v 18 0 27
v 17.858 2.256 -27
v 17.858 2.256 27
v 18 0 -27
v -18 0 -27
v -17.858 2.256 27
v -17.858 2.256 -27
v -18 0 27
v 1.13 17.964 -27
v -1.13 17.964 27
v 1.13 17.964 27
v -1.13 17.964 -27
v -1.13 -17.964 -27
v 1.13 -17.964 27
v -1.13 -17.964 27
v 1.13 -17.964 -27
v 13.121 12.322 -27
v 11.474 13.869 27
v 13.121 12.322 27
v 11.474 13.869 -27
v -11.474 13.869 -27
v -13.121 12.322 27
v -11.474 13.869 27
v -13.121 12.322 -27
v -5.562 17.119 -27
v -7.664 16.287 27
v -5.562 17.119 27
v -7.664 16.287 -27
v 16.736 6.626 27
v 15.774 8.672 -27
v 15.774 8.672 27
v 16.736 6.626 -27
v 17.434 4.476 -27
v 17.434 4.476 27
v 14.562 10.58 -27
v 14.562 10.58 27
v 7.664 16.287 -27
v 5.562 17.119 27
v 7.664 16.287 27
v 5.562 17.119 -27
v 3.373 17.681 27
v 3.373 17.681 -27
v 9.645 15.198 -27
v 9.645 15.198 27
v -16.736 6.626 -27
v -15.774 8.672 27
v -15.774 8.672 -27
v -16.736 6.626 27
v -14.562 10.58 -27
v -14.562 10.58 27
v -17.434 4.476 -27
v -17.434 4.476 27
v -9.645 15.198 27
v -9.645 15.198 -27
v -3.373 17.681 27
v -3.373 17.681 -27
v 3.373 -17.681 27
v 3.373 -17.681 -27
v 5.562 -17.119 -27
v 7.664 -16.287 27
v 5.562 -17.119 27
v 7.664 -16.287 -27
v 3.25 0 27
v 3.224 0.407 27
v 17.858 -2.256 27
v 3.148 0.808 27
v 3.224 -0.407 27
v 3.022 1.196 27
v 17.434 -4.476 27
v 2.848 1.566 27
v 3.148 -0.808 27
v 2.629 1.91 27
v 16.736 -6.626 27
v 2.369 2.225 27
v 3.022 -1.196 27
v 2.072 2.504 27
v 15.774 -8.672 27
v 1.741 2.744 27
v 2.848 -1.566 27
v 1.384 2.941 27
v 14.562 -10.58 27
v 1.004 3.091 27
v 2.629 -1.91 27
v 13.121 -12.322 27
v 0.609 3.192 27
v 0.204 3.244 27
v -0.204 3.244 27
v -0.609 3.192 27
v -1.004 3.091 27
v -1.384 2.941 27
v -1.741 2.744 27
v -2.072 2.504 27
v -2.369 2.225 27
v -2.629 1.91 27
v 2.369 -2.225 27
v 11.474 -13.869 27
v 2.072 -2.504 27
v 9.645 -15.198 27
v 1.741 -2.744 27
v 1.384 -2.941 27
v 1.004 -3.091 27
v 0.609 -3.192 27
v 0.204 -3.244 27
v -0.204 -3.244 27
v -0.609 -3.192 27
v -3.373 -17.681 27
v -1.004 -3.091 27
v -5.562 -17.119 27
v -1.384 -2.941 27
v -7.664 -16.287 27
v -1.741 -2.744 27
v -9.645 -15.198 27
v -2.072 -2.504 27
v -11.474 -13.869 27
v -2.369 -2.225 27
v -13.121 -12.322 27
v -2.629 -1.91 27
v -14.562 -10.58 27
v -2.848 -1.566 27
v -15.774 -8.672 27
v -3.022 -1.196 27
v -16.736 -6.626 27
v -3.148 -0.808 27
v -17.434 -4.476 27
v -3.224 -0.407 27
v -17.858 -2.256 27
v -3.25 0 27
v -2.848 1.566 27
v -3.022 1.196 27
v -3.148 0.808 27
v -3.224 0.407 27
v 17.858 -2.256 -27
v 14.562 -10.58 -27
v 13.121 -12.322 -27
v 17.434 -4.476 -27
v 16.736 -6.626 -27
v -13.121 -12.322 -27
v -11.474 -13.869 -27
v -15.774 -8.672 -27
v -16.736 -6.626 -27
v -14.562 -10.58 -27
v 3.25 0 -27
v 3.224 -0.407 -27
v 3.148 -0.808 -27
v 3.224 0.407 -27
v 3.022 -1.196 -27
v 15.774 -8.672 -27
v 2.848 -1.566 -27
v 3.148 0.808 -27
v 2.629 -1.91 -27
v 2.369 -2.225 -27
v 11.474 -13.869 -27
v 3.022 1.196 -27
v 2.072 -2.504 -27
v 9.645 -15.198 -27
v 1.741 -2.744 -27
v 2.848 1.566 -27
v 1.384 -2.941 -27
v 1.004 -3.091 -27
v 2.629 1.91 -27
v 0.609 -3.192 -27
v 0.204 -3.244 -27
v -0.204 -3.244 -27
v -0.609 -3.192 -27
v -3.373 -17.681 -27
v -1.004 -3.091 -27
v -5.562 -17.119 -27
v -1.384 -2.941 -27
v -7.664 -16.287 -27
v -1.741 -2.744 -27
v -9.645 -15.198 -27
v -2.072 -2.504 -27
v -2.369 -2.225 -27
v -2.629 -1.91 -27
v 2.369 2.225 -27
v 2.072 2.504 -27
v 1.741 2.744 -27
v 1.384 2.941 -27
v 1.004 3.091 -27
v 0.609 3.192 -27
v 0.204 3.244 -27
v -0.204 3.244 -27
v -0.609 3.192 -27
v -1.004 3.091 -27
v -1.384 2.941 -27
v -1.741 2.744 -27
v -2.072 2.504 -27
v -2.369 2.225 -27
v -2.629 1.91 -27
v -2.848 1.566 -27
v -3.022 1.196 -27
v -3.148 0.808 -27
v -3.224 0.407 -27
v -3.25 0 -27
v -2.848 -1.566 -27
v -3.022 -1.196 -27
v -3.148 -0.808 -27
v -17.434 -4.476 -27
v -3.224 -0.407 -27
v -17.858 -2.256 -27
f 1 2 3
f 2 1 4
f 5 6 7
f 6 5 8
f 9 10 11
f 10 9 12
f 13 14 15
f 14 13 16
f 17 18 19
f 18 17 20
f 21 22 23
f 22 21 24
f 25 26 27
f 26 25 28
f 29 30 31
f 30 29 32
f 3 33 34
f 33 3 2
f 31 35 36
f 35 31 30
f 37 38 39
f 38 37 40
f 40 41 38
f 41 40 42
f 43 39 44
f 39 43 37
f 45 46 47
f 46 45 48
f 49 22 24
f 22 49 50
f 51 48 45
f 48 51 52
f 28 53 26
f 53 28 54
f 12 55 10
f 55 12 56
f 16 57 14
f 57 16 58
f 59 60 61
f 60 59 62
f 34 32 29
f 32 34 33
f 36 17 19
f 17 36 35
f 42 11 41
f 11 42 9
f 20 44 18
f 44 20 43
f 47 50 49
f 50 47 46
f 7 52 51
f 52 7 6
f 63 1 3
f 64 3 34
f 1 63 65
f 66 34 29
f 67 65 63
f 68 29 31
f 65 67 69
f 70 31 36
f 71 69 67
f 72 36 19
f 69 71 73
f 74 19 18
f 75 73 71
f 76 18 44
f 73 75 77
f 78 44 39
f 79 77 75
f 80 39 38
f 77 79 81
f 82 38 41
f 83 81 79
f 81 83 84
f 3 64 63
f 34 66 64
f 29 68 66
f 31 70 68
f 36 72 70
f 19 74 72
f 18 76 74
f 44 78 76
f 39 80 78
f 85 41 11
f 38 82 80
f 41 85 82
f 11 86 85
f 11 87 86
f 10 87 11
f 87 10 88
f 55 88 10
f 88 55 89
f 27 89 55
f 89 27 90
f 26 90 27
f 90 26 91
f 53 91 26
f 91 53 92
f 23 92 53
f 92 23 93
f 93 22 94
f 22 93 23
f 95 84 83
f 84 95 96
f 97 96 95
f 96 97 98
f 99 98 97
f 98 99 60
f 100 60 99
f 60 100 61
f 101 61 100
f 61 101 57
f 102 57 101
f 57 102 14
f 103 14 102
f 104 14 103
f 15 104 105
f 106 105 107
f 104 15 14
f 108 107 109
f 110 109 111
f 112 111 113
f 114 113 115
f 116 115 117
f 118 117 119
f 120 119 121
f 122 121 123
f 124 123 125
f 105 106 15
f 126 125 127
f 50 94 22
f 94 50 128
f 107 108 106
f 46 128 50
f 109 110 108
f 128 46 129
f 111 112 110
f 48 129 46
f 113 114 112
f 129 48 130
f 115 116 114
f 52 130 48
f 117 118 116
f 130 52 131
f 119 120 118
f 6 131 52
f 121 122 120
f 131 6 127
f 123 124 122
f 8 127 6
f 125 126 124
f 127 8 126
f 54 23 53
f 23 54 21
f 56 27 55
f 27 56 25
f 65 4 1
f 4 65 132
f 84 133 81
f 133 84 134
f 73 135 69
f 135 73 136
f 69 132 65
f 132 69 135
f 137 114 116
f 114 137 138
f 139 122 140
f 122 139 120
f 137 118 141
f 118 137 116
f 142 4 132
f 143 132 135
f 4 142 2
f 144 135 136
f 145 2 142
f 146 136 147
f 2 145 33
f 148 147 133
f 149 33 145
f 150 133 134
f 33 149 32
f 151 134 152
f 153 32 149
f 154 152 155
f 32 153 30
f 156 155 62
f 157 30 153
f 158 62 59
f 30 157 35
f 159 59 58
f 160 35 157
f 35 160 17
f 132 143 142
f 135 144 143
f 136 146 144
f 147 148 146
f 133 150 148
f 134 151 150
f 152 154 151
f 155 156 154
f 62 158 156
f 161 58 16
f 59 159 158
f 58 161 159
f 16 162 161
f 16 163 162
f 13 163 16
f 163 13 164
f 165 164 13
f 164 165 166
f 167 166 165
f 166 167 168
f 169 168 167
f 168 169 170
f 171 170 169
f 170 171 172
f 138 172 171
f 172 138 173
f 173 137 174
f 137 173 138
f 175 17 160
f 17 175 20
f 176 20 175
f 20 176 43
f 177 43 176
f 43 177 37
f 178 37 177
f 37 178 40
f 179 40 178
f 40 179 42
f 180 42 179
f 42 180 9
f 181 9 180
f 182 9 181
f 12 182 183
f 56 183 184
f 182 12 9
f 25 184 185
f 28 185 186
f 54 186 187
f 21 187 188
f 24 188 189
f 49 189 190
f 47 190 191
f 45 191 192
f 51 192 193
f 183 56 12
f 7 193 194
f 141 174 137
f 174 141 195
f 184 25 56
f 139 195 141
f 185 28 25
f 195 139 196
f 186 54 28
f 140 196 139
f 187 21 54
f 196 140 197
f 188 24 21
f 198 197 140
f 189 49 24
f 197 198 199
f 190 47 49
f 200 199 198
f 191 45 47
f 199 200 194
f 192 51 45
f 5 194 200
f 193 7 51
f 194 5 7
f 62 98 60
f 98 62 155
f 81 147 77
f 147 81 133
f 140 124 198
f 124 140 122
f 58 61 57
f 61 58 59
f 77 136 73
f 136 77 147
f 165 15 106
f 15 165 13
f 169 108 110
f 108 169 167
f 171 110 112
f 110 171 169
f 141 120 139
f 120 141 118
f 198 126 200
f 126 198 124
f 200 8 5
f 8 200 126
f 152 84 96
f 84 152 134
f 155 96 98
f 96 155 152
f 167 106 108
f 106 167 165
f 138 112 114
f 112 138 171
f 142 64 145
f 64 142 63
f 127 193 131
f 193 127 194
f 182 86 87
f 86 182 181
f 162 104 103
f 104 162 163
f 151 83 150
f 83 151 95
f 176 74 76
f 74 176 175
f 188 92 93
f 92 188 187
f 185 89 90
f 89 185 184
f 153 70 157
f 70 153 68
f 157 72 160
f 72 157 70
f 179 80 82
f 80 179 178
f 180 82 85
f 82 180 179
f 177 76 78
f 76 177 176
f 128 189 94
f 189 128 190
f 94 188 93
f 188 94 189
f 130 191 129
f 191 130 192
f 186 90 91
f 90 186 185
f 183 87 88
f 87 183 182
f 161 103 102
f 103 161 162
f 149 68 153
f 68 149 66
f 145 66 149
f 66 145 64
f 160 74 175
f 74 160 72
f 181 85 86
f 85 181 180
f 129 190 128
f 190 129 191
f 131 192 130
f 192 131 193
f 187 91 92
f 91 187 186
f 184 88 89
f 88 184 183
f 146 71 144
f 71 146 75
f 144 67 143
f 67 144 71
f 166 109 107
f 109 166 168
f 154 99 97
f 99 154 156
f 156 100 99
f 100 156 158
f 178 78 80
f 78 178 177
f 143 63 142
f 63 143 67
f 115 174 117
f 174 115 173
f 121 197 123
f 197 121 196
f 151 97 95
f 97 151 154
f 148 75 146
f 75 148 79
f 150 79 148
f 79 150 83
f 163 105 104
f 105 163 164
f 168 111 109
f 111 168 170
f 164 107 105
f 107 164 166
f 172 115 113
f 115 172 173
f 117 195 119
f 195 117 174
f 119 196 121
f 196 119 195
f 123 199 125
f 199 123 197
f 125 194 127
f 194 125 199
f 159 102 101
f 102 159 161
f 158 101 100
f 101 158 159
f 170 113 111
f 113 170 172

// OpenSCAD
$fn = 50;


difference() {
	union() {
		translate(v = [0, 0, -27.0000000000]) {
			cylinder(h = 54, r = 18.0000000000);
		}
	}
	union() {
		translate(v = [0, 0, -100.0000000000]) {
			cylinder(h = 200, r = 3.2500000000);
		}
	}
}
